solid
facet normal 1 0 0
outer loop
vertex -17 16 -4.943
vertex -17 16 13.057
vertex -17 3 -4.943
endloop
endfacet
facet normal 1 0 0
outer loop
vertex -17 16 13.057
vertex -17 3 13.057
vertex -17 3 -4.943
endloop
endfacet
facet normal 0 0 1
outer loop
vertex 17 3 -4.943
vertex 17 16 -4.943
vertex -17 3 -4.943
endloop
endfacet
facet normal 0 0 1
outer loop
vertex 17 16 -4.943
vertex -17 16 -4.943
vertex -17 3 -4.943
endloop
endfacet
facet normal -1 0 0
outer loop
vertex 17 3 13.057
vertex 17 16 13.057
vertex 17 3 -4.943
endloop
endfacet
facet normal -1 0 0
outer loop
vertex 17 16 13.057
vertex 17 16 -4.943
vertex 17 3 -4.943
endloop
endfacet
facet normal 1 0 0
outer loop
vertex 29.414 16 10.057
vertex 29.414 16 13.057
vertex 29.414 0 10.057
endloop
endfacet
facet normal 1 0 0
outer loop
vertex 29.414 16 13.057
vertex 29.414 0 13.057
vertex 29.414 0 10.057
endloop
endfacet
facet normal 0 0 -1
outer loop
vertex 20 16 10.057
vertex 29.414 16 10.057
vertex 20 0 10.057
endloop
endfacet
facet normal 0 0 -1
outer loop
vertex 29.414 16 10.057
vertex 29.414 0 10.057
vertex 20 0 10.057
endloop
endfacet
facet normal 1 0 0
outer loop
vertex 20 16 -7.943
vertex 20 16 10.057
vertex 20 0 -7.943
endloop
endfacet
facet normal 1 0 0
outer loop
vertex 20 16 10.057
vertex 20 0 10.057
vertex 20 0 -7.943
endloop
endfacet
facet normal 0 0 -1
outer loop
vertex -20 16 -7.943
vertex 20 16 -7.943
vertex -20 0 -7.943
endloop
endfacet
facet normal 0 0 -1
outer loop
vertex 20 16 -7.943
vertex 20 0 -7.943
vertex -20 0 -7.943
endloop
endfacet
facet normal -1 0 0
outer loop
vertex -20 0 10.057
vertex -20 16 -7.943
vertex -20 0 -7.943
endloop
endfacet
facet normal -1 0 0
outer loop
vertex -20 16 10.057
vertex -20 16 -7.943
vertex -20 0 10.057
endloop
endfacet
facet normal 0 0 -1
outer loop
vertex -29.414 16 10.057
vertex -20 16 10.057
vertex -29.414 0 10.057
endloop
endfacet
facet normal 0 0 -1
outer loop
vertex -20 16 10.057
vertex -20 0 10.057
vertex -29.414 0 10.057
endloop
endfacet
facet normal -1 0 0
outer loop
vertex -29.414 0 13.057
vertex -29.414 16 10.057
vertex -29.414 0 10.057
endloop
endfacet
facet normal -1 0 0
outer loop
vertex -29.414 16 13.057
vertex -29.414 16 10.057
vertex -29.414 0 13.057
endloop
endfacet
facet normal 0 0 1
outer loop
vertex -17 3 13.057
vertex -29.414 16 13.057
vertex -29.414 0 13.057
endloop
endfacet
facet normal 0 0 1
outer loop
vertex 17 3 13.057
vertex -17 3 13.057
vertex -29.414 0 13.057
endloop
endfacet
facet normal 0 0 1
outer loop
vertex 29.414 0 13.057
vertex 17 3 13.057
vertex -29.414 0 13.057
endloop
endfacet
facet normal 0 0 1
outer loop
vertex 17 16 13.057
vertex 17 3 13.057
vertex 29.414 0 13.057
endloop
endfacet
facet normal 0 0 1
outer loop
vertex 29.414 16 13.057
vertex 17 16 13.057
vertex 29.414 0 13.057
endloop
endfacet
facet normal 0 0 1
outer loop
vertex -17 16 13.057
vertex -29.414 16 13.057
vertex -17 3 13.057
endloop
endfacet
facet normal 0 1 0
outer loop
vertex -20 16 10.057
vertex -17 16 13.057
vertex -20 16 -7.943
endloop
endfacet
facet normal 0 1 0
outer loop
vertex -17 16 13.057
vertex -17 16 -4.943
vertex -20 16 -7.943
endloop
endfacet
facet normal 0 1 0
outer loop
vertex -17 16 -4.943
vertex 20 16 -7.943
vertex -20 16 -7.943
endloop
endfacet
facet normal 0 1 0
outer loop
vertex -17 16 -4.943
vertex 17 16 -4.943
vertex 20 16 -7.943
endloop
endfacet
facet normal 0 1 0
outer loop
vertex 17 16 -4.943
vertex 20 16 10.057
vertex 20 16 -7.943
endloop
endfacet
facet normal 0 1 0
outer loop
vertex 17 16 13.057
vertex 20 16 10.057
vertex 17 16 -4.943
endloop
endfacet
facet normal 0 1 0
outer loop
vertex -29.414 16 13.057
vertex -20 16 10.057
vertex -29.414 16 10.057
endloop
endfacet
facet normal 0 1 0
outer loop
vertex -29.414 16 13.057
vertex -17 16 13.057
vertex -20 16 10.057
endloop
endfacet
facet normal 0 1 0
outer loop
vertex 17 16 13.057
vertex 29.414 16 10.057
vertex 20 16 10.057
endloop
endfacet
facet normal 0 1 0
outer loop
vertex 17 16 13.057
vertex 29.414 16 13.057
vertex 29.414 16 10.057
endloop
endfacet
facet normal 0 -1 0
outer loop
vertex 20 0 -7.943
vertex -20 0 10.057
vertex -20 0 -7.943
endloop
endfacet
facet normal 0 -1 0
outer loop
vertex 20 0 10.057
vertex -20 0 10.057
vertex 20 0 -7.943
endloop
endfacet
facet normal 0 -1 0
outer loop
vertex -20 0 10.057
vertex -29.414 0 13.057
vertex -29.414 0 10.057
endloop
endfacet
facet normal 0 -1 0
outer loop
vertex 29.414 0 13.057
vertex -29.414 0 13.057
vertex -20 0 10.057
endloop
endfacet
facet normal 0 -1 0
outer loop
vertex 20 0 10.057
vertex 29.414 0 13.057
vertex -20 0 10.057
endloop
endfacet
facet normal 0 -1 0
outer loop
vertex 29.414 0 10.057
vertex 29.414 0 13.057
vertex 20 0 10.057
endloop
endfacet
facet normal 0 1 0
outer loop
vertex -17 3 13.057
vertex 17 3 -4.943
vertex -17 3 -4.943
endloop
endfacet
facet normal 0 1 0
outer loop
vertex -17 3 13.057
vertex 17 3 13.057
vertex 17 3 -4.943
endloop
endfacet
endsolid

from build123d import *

# Parameters (mm, degrees)
SKETCH1_W           = 3
SKETCH1_H           = 15
SKETCH1_W_2         = 12.413793103
SKETCH1_H_2         = 3
BOSS_EXTRUDE1_DEPTH = 16
SKETCH2_W           = 34
SKETCH2_H           = 18
BOSS_EXTRUDE2_DEPTH = 3


with BuildPart() as part:
    # Sketch1 → Boss-Extrude1 (new body)
    with BuildSketch(Plane(origin=(0, 0, 0), x_dir=(1, 0, 0), z_dir=(0, 1, 0))):
        with Locations((-18.5, -2.557471264)):
            Rectangle(SKETCH1_W, SKETCH1_H)
        with Locations((-23.206896552, -11.557471264)):
            Rectangle(SKETCH1_W_2, SKETCH1_H_2)
        Polygon((0, 7.942528736), (-20, 7.942528736), (-20, 4.942528736), (-17, 4.942528736), (0, 4.942528736), align=None)
        Polygon((20, 7.942528736), (0, 7.942528736), (0, 4.942528736), (17, 4.942528736), (20, 4.942528736), align=None)
        with Locations((18.5, -2.557471264)):
            Rectangle(SKETCH1_W, SKETCH1_H)
        Polygon((29.413793103, -10.057471264), (20, -10.057471264), (17, -10.057471264), (17, -13.057471264), (29.413793103, -13.057471264), align=None)
    extrude(amount=BOSS_EXTRUDE1_DEPTH)

    # Sketch2 → Boss-Extrude2 (add)
    with BuildSketch(Plane(origin=(0, 0, 0), x_dir=(1, 0, 0), z_dir=(0, 1, 0))):
        with Locations((0, -4.057471264)):
            Rectangle(SKETCH2_W, SKETCH2_H)
    extrude(amount=BOSS_EXTRUDE2_DEPTH)


solid = part.part
